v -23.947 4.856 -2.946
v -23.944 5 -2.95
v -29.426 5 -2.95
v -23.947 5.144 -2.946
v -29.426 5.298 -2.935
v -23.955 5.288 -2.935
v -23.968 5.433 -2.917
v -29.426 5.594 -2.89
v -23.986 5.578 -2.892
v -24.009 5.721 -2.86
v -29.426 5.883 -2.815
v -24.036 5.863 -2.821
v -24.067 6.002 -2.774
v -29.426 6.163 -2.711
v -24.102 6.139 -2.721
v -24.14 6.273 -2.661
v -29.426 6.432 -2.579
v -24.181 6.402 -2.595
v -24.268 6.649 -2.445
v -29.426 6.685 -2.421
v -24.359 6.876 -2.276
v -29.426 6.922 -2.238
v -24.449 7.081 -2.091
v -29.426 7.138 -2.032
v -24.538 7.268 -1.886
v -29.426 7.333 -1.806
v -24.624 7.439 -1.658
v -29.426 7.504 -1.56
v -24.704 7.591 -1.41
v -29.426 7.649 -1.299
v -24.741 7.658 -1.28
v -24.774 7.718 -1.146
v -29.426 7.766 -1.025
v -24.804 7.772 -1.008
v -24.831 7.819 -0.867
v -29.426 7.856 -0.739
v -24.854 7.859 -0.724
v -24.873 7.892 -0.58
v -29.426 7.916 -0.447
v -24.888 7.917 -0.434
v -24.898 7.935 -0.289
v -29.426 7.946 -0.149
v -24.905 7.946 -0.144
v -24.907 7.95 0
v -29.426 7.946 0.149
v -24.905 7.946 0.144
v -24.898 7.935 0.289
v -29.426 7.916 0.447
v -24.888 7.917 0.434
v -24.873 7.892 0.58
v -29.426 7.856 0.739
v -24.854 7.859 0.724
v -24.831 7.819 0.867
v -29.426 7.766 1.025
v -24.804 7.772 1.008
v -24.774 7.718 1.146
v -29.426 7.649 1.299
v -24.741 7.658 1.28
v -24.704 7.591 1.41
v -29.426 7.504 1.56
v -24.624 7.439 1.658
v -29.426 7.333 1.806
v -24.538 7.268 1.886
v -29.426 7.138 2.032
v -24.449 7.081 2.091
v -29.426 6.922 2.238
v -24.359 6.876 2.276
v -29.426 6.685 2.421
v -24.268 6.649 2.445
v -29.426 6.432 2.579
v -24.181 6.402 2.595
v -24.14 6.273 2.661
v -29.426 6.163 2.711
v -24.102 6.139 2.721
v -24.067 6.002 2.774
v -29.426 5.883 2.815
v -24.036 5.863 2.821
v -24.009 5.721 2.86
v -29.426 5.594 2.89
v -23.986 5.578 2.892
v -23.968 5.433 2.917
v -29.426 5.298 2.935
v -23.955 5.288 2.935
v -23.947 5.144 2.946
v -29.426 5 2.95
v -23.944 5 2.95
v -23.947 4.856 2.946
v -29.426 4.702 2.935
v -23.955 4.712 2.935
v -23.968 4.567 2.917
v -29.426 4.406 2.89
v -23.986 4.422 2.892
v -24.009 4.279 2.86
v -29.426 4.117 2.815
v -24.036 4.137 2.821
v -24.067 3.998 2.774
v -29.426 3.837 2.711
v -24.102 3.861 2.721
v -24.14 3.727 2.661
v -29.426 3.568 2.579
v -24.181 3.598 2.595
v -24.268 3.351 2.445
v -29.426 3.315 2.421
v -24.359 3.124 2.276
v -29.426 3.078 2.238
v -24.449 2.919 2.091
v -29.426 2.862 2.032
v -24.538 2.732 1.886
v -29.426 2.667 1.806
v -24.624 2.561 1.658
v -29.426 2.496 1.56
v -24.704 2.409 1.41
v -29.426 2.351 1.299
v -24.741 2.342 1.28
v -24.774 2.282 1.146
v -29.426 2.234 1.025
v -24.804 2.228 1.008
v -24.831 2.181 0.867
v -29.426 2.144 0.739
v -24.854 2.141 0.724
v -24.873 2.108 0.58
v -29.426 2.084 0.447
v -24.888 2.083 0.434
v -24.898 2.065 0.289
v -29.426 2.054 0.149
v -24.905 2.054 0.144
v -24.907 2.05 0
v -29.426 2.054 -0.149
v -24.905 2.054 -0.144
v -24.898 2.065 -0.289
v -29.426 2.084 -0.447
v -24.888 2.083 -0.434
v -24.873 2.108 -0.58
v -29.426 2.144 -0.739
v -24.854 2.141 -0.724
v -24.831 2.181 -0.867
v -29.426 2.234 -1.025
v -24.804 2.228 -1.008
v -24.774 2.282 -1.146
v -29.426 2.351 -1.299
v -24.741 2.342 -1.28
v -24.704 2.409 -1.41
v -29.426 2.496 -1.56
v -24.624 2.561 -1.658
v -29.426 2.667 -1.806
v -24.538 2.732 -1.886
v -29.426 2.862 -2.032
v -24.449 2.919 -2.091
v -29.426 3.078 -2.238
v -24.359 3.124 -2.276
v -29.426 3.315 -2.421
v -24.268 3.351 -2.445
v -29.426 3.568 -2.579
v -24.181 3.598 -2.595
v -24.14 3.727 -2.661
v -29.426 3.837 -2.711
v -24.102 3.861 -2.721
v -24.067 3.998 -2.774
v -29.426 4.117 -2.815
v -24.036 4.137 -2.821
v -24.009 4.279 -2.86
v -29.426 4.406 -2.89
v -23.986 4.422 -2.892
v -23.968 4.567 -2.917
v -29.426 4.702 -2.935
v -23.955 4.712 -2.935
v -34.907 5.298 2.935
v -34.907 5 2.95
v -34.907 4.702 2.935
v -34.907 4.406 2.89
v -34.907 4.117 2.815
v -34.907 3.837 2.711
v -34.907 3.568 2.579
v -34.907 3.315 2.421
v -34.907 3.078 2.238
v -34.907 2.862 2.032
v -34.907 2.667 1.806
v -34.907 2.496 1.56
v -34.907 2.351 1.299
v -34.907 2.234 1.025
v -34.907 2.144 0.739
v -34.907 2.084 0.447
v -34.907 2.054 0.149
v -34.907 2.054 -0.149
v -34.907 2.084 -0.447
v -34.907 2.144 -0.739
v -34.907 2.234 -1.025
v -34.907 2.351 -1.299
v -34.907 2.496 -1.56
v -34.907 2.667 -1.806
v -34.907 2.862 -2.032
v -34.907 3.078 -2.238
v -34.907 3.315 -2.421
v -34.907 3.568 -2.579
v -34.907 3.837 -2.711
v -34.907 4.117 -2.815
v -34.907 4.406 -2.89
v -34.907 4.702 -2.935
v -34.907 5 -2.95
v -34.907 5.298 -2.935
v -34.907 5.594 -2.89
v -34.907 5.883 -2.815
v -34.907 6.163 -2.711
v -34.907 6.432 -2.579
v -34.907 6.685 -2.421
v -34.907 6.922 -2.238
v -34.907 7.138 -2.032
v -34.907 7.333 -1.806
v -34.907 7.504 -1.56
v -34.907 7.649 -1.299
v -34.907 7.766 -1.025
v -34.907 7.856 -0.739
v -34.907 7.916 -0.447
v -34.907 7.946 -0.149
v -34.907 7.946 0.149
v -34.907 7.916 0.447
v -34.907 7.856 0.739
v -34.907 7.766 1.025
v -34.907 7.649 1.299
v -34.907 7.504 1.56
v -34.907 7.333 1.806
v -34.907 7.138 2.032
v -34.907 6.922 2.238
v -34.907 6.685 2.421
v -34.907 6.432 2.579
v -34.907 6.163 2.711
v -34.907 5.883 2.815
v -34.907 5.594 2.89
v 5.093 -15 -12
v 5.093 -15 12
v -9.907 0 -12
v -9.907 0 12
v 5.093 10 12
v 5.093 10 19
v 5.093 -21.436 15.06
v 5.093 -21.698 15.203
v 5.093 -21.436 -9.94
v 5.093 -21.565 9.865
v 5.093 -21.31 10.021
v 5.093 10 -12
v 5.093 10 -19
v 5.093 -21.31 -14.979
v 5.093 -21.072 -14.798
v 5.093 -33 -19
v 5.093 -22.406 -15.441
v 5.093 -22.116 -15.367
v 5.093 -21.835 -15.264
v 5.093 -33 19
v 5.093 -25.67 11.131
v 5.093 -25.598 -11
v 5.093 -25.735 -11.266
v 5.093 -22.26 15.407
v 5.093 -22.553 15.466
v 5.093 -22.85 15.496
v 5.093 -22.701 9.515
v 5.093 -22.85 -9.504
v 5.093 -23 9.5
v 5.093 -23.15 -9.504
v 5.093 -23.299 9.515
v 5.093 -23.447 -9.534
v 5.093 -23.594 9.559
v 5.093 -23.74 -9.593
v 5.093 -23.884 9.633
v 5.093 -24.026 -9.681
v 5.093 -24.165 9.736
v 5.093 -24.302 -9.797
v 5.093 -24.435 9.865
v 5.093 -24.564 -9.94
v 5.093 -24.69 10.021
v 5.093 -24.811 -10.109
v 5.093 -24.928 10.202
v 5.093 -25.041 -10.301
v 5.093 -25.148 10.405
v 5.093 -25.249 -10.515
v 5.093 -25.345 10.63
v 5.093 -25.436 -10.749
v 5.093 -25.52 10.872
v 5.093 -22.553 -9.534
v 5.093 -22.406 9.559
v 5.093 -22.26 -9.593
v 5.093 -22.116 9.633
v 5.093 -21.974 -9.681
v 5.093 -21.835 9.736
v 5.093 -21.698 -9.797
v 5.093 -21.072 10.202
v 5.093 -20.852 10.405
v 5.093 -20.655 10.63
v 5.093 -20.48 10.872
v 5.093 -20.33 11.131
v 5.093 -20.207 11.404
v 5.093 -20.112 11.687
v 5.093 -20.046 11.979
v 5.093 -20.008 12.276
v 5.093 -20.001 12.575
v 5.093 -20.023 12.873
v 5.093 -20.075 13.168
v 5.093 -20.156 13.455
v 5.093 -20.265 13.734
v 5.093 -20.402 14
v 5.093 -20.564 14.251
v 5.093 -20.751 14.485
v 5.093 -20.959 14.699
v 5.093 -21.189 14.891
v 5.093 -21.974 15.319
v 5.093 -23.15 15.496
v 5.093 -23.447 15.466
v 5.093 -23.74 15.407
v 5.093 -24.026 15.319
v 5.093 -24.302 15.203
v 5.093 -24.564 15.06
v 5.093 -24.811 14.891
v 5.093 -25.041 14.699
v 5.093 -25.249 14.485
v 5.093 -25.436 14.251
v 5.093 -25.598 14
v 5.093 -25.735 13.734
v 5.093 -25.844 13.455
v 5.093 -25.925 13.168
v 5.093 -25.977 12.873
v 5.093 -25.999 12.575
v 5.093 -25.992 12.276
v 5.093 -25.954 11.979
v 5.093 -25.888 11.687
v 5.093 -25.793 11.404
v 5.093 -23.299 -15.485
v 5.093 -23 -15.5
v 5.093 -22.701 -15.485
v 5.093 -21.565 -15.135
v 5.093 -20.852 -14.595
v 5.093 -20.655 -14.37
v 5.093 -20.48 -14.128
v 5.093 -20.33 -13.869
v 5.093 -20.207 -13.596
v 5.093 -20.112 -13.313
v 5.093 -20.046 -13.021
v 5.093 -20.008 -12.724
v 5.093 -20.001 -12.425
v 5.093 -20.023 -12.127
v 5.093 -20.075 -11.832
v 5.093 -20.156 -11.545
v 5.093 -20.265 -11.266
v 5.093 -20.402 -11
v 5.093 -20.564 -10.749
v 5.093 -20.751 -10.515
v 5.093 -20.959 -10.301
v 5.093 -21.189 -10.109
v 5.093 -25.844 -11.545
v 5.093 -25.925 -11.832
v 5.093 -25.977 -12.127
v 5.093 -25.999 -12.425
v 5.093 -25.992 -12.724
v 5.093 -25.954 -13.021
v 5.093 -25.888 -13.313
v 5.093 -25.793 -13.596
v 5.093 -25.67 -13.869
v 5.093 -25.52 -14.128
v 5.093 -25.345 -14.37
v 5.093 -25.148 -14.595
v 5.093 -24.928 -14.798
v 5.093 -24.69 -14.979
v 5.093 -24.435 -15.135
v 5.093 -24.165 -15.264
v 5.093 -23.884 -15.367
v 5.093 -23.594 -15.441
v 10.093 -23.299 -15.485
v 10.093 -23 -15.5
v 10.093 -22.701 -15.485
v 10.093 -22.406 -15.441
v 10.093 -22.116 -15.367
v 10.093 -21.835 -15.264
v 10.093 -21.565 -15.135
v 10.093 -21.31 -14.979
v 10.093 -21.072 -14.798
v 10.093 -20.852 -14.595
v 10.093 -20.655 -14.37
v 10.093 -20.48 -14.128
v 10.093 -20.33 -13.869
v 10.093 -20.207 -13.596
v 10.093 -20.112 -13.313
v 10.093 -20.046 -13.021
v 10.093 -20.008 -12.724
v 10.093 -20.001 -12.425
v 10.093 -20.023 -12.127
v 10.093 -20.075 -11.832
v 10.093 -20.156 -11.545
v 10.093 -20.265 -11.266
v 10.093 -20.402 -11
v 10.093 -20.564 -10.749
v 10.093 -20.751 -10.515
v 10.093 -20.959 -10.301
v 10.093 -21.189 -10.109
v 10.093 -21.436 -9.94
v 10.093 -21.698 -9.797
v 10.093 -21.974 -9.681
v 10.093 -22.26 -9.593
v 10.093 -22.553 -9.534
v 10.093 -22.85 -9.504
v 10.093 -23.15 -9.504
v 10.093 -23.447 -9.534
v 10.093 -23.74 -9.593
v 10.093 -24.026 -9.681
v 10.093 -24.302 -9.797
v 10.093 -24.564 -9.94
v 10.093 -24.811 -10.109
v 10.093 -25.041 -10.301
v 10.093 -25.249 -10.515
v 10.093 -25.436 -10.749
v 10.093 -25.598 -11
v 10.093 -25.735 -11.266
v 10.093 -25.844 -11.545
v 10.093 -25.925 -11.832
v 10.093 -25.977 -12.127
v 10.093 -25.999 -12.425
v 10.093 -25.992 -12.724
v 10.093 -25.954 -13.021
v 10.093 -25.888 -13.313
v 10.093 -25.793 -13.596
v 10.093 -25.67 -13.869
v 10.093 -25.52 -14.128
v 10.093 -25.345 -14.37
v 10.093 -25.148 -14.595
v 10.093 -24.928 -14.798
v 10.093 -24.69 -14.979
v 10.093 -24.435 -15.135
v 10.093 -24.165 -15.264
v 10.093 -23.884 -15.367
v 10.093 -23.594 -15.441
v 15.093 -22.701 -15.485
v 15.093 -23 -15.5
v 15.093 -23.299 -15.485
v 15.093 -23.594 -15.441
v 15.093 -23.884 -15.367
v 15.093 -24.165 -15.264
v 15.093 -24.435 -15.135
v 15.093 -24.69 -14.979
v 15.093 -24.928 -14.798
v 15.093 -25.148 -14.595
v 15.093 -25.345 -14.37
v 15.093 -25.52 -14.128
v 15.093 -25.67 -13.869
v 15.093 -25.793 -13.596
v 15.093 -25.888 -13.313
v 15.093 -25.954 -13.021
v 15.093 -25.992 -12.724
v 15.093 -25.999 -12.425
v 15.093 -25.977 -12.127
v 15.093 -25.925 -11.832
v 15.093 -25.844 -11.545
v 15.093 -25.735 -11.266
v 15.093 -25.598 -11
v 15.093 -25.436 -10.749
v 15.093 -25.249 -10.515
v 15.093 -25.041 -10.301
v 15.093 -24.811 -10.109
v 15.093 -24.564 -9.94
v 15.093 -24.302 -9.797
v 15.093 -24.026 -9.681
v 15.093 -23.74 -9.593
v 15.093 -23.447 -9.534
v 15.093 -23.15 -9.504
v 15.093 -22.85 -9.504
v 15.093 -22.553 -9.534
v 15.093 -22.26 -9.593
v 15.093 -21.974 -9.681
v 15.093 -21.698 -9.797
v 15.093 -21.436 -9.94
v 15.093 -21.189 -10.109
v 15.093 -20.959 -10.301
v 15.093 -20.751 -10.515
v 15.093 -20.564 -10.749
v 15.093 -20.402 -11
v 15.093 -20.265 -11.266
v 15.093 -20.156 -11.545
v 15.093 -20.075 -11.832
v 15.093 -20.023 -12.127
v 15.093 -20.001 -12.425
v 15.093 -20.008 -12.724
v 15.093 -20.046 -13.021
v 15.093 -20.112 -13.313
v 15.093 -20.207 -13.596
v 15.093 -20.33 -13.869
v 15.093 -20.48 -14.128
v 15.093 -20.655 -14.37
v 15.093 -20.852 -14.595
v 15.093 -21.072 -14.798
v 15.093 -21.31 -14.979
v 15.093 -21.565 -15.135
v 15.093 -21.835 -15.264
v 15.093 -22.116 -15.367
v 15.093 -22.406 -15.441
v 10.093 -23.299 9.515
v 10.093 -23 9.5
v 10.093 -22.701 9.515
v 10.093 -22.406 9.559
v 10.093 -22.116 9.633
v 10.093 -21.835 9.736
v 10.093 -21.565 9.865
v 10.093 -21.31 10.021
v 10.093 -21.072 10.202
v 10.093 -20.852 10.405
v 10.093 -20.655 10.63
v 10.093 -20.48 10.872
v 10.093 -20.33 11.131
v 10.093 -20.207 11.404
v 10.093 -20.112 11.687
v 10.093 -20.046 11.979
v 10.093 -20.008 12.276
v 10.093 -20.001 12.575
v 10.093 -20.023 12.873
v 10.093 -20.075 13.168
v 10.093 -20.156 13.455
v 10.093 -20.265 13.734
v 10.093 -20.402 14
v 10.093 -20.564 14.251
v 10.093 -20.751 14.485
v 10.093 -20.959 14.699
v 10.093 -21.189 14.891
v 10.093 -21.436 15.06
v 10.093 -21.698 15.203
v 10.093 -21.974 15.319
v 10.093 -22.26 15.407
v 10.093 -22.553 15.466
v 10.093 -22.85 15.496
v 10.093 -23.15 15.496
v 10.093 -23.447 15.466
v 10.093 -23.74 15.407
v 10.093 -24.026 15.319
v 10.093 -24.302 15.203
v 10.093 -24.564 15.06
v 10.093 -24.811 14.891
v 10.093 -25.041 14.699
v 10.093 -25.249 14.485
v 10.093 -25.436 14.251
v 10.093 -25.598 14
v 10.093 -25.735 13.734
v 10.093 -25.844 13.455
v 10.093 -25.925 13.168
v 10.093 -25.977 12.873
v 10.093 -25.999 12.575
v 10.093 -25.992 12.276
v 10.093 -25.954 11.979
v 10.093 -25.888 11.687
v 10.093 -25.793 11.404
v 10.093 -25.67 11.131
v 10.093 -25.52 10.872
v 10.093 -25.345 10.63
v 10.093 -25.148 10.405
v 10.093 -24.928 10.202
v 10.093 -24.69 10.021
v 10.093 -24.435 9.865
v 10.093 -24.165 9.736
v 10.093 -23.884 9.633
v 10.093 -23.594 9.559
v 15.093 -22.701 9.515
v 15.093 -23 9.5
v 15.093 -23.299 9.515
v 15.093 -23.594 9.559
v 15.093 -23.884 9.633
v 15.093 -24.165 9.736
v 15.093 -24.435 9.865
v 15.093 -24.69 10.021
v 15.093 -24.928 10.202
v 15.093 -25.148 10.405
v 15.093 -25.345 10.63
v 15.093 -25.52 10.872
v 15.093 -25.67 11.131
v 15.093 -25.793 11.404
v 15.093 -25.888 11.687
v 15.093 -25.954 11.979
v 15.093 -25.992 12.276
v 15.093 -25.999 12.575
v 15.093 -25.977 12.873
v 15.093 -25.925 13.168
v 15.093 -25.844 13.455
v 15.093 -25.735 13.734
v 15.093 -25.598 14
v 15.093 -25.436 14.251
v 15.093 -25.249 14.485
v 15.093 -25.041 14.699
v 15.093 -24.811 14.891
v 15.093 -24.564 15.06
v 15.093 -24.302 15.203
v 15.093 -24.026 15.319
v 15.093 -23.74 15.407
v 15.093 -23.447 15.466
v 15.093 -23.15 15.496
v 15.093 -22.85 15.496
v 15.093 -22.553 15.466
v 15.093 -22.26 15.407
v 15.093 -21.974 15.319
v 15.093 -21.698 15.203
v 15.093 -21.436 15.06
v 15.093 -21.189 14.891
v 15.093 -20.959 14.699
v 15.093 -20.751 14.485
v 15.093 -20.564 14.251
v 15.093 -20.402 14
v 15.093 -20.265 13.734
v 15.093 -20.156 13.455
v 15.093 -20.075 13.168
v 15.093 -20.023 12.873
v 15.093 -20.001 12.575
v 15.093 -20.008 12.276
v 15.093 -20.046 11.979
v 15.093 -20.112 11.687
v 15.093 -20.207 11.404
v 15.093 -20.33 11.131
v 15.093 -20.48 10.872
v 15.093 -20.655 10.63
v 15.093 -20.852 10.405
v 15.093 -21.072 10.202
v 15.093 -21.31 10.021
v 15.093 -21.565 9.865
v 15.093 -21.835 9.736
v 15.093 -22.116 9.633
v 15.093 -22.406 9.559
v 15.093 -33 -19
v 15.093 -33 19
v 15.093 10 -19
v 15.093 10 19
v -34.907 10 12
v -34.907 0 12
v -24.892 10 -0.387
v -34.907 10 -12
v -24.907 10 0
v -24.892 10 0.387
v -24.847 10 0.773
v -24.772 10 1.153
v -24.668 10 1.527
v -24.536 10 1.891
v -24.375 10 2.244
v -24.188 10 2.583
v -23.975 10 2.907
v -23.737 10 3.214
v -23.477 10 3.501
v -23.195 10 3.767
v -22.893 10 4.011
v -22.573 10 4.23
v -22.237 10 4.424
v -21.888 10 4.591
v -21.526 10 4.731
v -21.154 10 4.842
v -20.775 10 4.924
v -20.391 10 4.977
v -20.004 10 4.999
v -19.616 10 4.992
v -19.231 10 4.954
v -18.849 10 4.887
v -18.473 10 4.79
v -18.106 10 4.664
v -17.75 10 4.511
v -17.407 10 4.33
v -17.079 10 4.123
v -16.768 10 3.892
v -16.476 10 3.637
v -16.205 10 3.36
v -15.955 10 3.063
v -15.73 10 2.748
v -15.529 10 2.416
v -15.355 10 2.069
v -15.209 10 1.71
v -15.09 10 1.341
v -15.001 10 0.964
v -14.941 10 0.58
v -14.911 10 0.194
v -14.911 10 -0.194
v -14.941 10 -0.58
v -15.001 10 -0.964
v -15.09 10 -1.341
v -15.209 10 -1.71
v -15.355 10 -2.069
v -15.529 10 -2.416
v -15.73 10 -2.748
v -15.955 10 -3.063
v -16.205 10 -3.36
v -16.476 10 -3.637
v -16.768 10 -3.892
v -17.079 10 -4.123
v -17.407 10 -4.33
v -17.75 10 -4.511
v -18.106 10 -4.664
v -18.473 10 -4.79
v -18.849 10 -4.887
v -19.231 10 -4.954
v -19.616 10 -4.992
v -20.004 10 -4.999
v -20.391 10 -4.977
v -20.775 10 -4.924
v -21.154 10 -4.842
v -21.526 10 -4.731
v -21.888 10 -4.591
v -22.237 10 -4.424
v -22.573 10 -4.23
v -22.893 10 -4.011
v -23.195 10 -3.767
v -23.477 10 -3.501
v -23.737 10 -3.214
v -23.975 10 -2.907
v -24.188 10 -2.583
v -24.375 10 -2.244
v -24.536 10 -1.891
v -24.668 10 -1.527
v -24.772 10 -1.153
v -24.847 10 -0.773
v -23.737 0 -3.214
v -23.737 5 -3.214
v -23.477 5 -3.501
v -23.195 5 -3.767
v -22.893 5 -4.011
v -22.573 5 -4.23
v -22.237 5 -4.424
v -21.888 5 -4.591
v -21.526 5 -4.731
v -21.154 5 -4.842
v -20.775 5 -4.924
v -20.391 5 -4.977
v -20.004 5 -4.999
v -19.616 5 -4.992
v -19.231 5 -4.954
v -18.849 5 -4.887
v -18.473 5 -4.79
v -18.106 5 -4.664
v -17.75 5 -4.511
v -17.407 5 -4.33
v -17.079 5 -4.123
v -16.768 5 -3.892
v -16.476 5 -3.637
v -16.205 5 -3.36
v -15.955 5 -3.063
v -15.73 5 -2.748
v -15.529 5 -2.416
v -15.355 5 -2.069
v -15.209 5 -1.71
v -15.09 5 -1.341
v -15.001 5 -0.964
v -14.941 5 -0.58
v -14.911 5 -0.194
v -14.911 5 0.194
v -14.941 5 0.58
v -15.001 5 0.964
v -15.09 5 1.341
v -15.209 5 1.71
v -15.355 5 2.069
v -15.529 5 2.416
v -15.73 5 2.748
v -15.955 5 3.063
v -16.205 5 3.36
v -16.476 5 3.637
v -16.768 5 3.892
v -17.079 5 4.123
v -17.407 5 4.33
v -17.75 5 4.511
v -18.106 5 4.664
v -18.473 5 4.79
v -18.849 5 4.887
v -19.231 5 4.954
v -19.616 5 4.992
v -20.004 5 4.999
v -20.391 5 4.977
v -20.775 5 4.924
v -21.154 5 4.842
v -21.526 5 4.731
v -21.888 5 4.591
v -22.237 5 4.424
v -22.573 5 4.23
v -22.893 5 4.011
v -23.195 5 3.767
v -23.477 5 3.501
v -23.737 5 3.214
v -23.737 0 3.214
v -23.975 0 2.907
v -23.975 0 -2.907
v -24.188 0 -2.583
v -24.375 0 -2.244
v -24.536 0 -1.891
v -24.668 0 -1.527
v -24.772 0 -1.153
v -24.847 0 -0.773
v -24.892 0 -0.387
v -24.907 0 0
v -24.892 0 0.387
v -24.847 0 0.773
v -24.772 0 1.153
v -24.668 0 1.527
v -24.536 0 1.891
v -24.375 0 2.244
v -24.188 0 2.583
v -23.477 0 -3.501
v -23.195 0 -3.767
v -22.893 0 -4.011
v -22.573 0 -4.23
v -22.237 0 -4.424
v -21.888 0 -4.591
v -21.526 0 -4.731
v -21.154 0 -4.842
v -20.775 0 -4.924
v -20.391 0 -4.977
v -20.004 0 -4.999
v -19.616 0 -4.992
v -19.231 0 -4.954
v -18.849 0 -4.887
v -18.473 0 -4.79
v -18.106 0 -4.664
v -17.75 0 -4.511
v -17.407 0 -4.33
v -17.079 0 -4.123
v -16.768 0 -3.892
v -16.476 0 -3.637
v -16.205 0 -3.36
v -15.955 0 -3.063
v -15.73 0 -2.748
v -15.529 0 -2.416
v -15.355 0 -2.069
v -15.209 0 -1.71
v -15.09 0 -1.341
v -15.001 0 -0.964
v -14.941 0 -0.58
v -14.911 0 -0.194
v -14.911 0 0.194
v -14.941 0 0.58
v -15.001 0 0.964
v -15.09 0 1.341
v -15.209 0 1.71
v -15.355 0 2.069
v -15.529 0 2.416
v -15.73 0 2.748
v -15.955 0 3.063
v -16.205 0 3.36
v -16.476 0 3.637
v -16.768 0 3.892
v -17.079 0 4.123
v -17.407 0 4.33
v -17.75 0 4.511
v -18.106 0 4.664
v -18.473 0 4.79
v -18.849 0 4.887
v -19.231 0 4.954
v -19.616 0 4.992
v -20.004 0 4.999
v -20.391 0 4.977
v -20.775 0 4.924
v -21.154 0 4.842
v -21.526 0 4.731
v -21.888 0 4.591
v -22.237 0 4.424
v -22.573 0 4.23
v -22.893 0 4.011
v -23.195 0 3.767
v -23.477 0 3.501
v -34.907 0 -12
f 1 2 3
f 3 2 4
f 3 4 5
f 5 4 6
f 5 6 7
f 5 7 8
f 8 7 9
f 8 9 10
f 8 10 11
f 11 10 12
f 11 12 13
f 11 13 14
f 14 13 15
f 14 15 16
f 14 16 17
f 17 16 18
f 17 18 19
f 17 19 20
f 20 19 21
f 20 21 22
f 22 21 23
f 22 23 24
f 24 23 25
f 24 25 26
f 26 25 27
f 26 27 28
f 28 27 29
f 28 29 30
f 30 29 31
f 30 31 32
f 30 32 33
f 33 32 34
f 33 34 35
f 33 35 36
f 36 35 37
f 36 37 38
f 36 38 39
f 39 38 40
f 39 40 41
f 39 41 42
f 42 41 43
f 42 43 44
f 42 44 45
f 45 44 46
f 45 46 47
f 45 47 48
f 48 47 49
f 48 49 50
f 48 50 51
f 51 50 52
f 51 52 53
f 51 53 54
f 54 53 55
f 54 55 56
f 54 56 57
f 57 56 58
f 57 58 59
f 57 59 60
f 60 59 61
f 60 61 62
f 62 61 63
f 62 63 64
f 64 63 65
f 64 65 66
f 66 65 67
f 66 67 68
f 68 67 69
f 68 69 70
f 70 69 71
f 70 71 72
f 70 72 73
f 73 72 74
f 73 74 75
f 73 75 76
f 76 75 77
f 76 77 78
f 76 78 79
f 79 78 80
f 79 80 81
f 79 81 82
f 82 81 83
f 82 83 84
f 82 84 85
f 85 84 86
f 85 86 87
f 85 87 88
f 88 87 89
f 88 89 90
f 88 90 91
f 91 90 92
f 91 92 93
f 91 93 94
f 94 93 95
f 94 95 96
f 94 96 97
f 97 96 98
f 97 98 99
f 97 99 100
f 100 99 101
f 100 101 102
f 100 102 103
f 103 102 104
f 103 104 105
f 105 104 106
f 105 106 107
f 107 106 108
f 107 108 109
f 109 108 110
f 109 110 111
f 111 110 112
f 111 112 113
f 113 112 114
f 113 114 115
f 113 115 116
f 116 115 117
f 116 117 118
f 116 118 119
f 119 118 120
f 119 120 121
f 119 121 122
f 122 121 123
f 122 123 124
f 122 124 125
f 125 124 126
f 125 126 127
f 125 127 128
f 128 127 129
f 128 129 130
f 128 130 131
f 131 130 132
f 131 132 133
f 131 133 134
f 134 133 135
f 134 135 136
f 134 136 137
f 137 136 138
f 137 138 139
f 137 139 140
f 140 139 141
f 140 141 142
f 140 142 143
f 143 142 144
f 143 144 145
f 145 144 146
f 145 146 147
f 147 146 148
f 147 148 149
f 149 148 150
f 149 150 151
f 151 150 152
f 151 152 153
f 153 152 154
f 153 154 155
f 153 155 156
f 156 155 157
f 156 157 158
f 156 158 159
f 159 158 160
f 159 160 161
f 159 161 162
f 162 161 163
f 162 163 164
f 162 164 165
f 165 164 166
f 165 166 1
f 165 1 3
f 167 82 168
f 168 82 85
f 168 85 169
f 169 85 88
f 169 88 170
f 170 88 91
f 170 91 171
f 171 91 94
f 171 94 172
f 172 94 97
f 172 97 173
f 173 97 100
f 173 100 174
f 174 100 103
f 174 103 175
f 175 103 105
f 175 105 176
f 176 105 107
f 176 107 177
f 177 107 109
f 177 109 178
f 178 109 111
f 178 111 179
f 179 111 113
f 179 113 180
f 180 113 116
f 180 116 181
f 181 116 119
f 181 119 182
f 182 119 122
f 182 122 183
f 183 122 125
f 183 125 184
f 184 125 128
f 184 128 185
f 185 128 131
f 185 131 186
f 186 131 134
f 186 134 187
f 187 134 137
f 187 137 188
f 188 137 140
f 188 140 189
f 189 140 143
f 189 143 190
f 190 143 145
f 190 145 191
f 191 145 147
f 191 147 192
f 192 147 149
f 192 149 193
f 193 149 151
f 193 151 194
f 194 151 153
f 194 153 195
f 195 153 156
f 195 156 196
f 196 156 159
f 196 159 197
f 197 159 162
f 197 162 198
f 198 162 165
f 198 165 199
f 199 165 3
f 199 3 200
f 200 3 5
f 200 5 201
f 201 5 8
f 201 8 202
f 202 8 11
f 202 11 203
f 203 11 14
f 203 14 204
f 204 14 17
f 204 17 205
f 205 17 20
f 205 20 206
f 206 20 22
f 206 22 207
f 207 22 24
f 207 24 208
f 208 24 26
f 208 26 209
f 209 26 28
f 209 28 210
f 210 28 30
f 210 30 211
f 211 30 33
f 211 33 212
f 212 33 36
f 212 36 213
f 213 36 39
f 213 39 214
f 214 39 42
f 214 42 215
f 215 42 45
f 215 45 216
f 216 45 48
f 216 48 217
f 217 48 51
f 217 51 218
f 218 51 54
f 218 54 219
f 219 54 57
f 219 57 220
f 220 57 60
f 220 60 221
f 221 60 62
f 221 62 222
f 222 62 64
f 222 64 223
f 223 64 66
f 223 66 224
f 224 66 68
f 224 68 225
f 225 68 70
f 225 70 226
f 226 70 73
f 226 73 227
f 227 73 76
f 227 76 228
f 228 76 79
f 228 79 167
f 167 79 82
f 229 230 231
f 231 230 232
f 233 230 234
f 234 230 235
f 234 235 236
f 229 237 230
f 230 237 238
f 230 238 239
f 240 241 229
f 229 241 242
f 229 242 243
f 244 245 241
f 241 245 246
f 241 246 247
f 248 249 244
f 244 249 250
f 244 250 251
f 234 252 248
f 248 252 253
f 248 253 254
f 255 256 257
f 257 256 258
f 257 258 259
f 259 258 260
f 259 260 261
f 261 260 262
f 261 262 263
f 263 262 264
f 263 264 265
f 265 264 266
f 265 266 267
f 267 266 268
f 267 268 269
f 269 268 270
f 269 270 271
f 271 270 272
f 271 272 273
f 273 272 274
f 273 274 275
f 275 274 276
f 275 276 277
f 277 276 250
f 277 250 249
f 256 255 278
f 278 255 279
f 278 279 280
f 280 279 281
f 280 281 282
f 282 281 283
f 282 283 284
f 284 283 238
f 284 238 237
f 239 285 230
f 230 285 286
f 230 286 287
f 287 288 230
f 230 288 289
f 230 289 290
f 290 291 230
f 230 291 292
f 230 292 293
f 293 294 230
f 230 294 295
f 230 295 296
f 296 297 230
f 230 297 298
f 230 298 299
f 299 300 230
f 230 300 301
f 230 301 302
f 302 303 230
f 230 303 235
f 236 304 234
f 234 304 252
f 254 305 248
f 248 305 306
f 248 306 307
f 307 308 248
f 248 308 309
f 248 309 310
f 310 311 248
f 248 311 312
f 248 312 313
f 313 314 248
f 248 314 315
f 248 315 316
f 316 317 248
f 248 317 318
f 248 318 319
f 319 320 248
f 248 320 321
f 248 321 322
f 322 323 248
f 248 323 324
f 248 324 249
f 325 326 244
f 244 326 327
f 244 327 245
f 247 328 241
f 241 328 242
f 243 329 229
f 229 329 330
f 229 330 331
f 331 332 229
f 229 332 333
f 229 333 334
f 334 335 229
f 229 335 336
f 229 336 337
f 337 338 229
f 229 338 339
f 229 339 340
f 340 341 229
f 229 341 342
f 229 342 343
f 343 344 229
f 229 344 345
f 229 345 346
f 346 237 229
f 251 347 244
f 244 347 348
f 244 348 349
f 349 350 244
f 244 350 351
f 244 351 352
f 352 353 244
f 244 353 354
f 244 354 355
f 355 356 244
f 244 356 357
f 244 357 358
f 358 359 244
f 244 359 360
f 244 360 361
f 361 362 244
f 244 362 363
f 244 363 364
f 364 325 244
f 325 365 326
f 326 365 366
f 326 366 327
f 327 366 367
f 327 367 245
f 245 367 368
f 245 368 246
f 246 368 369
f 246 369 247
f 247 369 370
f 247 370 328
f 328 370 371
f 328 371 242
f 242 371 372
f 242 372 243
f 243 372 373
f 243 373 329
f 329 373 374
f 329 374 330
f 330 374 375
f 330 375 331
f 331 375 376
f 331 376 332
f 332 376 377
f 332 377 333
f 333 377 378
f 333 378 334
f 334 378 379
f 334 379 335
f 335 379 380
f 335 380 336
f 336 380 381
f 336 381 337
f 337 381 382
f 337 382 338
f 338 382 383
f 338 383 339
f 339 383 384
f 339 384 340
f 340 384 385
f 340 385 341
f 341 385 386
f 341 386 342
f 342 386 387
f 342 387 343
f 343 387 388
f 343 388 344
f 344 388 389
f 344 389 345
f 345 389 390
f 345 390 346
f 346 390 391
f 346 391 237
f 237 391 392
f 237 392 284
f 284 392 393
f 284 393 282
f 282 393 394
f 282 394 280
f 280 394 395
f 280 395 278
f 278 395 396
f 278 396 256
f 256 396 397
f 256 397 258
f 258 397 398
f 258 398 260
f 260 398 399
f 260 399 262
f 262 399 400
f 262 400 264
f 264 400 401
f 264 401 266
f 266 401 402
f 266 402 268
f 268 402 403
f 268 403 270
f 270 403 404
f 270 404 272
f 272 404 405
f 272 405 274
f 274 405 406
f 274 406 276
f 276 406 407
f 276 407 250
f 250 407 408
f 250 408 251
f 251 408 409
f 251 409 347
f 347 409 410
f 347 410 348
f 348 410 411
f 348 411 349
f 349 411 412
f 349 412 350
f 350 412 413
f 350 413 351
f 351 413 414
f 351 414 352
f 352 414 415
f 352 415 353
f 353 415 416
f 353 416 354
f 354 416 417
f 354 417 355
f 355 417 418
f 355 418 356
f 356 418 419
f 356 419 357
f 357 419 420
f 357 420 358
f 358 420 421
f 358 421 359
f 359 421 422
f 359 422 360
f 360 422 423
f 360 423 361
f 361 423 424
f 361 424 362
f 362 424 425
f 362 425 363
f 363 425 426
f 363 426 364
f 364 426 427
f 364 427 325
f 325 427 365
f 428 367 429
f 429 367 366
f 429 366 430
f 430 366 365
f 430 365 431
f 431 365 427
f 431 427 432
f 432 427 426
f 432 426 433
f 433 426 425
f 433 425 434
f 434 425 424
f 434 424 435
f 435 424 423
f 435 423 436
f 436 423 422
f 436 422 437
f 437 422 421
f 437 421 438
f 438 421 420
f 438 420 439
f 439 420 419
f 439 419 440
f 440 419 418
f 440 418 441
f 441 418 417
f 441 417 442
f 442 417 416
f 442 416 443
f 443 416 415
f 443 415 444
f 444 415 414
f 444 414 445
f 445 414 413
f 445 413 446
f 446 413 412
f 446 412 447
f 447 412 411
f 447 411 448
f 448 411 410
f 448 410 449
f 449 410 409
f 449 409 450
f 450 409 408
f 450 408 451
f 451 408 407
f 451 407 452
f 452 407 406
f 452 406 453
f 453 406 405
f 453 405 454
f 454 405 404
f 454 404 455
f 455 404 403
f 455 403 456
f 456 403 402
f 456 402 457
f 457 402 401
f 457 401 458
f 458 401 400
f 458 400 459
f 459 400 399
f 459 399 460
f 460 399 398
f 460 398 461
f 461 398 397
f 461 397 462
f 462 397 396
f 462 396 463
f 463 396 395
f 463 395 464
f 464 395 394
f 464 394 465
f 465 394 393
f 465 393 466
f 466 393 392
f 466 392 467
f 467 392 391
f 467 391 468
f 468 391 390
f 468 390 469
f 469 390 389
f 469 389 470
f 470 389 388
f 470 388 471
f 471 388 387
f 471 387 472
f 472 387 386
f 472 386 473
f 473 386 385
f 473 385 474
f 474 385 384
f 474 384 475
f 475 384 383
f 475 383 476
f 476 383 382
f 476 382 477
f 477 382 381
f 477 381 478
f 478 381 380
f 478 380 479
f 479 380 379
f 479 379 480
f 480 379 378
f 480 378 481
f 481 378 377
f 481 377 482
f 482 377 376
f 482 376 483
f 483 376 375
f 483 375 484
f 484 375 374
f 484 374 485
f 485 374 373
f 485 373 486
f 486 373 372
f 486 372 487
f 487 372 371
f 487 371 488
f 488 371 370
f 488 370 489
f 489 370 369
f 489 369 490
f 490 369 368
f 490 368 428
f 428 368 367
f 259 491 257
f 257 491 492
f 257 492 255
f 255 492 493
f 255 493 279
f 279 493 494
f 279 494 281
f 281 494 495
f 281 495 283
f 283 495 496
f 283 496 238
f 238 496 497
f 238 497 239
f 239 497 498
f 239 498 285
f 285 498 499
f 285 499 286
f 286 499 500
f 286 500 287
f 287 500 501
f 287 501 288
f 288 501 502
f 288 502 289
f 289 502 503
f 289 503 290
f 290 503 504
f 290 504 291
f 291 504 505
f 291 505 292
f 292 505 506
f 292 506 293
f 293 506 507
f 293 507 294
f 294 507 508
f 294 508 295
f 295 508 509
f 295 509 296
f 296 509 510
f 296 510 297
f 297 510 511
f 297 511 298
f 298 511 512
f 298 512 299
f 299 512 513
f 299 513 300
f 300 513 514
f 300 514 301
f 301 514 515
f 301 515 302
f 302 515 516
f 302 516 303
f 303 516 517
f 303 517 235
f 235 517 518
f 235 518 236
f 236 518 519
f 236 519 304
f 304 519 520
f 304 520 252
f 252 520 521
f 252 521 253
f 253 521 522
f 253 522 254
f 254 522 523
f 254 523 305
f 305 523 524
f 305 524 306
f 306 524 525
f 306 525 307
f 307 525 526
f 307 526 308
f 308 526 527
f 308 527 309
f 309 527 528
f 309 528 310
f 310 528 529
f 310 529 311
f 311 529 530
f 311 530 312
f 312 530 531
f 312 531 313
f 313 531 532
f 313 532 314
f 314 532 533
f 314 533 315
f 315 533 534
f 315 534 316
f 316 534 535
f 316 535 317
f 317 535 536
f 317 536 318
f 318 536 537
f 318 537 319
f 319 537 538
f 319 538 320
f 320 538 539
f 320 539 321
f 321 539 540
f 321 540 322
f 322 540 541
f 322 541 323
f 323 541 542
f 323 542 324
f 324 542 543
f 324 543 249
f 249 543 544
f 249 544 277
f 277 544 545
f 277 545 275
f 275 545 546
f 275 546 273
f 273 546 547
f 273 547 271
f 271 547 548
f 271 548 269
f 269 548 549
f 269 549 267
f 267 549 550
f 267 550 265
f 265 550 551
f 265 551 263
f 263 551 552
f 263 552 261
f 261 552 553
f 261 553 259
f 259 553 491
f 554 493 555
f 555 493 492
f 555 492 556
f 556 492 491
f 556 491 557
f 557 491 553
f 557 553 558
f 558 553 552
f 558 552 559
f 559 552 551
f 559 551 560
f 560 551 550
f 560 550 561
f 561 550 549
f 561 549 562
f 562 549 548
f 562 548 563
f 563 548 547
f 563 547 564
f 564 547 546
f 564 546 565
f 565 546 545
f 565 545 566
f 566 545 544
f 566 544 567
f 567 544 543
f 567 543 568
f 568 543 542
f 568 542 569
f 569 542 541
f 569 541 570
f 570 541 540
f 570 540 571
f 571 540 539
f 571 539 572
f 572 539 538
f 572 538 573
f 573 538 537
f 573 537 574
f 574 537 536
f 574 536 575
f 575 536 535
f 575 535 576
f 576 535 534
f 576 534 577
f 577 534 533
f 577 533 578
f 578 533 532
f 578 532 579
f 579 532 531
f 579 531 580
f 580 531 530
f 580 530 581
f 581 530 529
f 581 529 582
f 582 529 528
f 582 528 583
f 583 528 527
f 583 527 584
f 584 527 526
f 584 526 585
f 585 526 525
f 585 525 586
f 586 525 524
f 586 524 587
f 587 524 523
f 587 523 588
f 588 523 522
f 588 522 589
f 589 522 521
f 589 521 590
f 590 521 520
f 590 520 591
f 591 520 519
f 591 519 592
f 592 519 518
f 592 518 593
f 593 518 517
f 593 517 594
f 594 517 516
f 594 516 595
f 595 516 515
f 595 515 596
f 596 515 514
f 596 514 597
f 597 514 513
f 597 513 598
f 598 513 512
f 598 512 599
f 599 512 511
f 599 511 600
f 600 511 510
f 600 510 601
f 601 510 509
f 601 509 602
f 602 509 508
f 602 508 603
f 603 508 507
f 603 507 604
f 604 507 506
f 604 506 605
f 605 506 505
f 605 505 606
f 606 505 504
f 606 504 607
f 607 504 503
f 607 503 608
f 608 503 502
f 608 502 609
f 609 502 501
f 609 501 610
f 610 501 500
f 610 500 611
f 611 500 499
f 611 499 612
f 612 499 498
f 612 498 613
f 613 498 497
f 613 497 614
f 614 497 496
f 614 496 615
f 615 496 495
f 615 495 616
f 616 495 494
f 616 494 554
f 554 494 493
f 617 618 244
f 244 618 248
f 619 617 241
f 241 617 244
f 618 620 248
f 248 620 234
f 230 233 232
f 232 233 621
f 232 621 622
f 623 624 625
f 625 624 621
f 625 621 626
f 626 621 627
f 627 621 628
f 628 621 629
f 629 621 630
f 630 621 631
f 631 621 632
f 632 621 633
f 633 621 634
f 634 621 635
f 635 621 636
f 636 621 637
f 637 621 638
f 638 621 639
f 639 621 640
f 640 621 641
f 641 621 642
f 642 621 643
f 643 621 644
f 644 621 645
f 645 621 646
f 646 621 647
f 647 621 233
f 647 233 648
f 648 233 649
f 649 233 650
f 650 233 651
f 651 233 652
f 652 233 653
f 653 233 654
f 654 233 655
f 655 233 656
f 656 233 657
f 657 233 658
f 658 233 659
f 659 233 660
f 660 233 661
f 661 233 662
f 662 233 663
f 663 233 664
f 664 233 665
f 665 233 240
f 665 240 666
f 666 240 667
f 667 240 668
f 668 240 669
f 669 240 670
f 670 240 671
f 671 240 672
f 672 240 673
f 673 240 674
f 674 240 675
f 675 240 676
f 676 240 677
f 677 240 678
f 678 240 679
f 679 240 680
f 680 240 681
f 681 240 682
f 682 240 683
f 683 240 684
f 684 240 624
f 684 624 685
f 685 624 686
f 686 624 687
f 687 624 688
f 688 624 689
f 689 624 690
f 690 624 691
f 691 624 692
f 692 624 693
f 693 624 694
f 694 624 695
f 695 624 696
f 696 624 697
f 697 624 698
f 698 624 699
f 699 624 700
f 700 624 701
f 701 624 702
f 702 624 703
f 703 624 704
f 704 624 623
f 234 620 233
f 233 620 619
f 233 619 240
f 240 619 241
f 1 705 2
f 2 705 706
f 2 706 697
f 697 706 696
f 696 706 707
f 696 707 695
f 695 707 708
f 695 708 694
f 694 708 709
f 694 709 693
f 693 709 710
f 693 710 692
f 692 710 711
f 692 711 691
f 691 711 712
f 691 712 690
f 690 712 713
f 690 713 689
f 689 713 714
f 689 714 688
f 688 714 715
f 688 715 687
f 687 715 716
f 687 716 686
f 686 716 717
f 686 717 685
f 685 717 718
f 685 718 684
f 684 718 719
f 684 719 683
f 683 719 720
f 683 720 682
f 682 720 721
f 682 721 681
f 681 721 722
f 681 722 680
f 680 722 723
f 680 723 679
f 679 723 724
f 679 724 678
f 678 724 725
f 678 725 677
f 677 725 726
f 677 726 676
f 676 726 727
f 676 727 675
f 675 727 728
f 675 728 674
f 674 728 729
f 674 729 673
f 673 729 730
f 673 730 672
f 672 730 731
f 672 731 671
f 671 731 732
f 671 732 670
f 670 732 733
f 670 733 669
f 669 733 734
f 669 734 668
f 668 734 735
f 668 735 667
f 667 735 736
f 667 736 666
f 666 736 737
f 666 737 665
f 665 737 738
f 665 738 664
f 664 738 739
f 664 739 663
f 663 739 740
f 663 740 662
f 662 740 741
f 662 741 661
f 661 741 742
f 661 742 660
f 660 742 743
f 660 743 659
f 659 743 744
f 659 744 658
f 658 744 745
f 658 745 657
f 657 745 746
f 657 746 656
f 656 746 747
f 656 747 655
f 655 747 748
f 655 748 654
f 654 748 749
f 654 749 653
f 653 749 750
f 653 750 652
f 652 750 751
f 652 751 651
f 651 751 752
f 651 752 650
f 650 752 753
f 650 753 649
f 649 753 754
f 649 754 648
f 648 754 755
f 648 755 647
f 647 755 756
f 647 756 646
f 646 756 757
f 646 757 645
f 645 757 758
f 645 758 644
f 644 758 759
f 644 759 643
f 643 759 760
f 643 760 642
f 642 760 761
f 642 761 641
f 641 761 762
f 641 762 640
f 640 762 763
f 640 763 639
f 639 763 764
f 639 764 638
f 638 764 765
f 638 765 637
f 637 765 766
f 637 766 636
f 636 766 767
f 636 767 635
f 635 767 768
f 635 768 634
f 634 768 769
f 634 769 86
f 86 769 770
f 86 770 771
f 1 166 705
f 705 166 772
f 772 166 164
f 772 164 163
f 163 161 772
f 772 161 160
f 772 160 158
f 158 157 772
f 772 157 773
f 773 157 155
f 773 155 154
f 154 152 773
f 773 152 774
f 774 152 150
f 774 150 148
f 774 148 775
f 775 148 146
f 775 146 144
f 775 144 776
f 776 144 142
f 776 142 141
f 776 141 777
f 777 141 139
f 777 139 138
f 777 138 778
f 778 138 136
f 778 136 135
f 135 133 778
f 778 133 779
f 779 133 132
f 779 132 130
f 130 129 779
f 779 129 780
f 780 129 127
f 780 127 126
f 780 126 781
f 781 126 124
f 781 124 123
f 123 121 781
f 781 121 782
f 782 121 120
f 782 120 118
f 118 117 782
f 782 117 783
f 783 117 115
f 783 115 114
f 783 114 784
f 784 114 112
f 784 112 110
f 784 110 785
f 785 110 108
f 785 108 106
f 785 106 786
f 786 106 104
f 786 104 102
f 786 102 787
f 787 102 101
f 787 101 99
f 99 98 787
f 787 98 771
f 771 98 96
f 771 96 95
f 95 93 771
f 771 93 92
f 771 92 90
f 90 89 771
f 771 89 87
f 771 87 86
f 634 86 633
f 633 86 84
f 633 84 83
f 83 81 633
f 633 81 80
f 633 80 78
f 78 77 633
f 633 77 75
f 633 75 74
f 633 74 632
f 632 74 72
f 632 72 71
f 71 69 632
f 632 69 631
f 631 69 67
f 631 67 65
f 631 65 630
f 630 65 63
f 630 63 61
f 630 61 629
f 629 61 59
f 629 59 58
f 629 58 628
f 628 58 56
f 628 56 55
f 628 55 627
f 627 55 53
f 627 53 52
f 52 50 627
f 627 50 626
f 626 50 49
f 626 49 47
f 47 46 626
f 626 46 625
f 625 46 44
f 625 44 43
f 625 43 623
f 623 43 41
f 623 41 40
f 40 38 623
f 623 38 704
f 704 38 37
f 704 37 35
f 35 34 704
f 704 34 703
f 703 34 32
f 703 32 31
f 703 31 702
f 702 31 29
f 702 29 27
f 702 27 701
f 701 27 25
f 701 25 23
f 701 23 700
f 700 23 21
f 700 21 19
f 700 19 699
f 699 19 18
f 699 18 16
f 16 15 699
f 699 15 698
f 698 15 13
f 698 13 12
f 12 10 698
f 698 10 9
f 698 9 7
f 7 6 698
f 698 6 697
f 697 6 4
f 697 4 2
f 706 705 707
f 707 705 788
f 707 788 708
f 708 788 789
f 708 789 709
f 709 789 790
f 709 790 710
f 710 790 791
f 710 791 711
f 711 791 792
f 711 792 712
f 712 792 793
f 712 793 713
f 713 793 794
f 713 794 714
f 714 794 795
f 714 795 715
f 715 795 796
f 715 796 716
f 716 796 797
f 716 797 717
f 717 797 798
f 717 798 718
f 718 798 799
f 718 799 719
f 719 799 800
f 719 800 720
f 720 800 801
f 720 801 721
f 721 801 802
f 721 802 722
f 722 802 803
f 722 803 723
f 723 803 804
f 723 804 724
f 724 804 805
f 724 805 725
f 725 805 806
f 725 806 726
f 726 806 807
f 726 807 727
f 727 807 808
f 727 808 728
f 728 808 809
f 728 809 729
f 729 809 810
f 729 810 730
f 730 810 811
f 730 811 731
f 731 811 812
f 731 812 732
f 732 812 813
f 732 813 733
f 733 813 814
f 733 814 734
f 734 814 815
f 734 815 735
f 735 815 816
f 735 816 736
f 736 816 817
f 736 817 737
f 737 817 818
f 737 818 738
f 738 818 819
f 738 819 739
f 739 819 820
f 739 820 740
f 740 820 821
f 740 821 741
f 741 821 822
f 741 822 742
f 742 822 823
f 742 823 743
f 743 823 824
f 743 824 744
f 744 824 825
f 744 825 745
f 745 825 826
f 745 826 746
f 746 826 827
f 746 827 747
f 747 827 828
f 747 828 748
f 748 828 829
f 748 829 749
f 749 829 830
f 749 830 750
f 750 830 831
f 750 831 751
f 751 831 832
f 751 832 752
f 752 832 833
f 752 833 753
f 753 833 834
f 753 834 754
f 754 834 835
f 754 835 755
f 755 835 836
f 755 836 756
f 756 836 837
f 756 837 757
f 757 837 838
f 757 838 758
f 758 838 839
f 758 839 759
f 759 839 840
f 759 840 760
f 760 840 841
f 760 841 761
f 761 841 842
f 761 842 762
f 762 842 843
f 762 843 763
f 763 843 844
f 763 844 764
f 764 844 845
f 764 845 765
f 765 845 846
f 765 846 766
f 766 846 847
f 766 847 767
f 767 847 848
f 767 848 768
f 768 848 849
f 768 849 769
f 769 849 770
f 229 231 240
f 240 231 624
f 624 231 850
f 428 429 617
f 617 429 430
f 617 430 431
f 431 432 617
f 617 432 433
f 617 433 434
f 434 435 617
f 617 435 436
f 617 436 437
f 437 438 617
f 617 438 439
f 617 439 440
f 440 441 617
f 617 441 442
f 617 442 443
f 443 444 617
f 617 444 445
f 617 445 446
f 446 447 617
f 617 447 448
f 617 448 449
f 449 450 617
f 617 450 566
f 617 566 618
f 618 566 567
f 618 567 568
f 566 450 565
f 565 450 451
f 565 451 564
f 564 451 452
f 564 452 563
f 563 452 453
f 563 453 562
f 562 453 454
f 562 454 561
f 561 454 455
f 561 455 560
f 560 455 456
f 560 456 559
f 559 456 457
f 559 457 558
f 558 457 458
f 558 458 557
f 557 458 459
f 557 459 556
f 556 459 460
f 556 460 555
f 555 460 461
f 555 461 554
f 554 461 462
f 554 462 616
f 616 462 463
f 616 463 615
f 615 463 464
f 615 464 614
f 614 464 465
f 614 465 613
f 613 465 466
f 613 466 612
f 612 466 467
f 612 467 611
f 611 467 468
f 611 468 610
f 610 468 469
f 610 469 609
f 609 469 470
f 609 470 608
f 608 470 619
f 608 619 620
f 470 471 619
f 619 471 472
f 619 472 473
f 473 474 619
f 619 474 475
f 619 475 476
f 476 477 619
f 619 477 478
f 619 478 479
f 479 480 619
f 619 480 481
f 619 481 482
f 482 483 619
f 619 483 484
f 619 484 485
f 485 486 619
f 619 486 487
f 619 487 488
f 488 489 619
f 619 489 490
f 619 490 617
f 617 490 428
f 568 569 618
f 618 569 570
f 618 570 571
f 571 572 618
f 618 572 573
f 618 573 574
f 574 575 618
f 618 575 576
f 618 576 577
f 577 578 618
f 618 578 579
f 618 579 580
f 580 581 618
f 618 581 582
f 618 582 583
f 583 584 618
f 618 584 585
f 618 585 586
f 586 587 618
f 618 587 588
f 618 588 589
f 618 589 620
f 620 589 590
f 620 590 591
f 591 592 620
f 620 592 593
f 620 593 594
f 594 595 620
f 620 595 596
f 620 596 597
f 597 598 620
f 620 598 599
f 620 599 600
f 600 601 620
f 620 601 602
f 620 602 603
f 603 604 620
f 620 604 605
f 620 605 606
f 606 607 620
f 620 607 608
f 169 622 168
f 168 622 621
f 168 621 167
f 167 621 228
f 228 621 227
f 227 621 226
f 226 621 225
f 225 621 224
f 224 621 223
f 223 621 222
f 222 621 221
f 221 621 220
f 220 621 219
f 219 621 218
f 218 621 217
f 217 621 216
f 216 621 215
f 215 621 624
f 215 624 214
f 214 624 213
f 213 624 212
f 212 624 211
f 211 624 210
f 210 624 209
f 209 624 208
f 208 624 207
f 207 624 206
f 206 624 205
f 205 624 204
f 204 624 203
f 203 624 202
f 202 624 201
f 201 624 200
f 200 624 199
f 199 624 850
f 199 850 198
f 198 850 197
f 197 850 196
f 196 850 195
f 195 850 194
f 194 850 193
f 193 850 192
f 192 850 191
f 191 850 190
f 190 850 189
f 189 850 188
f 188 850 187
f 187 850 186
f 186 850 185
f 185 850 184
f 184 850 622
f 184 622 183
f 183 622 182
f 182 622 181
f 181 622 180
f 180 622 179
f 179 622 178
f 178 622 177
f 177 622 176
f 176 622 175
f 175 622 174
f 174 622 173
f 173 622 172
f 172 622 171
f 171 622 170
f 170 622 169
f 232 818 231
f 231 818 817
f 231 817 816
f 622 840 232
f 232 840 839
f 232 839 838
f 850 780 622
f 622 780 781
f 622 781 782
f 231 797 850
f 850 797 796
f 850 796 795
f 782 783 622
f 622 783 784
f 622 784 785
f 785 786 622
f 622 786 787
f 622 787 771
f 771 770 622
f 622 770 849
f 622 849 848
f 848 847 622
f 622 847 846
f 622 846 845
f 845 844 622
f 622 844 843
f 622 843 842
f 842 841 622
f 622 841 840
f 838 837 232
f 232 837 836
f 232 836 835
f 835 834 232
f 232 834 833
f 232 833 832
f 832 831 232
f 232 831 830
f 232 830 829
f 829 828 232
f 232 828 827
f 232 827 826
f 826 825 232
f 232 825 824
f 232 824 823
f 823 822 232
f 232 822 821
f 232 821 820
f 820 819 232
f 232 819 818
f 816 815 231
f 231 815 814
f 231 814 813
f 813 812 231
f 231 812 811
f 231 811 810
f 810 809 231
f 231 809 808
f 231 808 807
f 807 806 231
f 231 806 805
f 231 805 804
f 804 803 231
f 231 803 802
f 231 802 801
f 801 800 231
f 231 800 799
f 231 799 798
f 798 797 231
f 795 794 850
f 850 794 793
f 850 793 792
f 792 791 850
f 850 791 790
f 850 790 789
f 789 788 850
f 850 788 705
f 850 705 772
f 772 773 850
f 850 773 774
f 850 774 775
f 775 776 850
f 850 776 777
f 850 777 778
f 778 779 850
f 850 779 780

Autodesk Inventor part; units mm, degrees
ref_plane "YZ Plane" through (0, 0, 0) normal (1, 0, 0) x (0, 1, 0)
ref_plane "XZ Plane" through (0, 0, 0) normal (0, 1, 0) x (-1, 0, 0)
ref_plane "XY Plane" through (0, 0, 0) normal (0, 0, 1) x (1, 0, 0)
sketch "Sketch1" plane through (0, 0, 0) normal (0, 1, 0) x (-1, 0, 0)
  circle A0 centre (19.9072, 0) radius 5
  line L0 (-15.0928, 12) -> (34.9072, 12)
  line L1 (34.9072, 12) -> (34.9072, -12)
  line L2 (34.9072, -12) -> (-15.0928, -12)
  line L3 (-15.0928, -12) -> (-15.0928, 12)
  point P0 (0, 0)
  dimension "d0" = 10
  dimension "d1" = 12
  dimension "d2" = 24
  dimension "d3" = 35
  dimension "d4" = 50
extrude "Extrusion1" add sketch "Sketch1" along normal blind 10
sketch "Sketch2" plane through (15.0928, 0, 12) normal (1, 0, 0) x (0, 0, -1)
  line L0 (12, 0) -> (12, -23) construction
  line L1 (12, -23) -> (-0.5, -23) construction
  circle A0 centre (-0.5, -23) radius 3
  line L2 (31, 10) -> (-7, 10)
  line L3 (-7, 10) -> (-7, -33)
  line L4 (-7, -33) -> (31, -33)
  line L5 (31, -33) -> (31, 10)
  line L6 (31, 10) -> (-7, -33) construction
  line L7 (-7, 10) -> (31, -33) construction
  circle A1 centre (24.5, -23) radius 3
  point P0 (12, -11.5)
  dimension "d7" = 6
  dimension "d8" = 12.5
extrude "Extrusion2" add sketch "Sketch2" against normal blind 10
chamfer "Chamfer1" distance 15 angle 45 1 edges at (5.0928, 0, 0)
sketch "Sketch3" plane through (-34.9072, 0, -12) normal (-1, 0, 0) x (0, 0, 1)
  circle A0 centre (12, 5) radius 2.95
  line L0 (0, 10) -> (24, 10) projected
  point P0 (12, 0)
  dimension "d14" = 5.9
  dimension "d15" = 5
extrude "Extrusion3" cut sketch "Sketch3" against normal blind 16
properties part number "Mitutoyo holder"
